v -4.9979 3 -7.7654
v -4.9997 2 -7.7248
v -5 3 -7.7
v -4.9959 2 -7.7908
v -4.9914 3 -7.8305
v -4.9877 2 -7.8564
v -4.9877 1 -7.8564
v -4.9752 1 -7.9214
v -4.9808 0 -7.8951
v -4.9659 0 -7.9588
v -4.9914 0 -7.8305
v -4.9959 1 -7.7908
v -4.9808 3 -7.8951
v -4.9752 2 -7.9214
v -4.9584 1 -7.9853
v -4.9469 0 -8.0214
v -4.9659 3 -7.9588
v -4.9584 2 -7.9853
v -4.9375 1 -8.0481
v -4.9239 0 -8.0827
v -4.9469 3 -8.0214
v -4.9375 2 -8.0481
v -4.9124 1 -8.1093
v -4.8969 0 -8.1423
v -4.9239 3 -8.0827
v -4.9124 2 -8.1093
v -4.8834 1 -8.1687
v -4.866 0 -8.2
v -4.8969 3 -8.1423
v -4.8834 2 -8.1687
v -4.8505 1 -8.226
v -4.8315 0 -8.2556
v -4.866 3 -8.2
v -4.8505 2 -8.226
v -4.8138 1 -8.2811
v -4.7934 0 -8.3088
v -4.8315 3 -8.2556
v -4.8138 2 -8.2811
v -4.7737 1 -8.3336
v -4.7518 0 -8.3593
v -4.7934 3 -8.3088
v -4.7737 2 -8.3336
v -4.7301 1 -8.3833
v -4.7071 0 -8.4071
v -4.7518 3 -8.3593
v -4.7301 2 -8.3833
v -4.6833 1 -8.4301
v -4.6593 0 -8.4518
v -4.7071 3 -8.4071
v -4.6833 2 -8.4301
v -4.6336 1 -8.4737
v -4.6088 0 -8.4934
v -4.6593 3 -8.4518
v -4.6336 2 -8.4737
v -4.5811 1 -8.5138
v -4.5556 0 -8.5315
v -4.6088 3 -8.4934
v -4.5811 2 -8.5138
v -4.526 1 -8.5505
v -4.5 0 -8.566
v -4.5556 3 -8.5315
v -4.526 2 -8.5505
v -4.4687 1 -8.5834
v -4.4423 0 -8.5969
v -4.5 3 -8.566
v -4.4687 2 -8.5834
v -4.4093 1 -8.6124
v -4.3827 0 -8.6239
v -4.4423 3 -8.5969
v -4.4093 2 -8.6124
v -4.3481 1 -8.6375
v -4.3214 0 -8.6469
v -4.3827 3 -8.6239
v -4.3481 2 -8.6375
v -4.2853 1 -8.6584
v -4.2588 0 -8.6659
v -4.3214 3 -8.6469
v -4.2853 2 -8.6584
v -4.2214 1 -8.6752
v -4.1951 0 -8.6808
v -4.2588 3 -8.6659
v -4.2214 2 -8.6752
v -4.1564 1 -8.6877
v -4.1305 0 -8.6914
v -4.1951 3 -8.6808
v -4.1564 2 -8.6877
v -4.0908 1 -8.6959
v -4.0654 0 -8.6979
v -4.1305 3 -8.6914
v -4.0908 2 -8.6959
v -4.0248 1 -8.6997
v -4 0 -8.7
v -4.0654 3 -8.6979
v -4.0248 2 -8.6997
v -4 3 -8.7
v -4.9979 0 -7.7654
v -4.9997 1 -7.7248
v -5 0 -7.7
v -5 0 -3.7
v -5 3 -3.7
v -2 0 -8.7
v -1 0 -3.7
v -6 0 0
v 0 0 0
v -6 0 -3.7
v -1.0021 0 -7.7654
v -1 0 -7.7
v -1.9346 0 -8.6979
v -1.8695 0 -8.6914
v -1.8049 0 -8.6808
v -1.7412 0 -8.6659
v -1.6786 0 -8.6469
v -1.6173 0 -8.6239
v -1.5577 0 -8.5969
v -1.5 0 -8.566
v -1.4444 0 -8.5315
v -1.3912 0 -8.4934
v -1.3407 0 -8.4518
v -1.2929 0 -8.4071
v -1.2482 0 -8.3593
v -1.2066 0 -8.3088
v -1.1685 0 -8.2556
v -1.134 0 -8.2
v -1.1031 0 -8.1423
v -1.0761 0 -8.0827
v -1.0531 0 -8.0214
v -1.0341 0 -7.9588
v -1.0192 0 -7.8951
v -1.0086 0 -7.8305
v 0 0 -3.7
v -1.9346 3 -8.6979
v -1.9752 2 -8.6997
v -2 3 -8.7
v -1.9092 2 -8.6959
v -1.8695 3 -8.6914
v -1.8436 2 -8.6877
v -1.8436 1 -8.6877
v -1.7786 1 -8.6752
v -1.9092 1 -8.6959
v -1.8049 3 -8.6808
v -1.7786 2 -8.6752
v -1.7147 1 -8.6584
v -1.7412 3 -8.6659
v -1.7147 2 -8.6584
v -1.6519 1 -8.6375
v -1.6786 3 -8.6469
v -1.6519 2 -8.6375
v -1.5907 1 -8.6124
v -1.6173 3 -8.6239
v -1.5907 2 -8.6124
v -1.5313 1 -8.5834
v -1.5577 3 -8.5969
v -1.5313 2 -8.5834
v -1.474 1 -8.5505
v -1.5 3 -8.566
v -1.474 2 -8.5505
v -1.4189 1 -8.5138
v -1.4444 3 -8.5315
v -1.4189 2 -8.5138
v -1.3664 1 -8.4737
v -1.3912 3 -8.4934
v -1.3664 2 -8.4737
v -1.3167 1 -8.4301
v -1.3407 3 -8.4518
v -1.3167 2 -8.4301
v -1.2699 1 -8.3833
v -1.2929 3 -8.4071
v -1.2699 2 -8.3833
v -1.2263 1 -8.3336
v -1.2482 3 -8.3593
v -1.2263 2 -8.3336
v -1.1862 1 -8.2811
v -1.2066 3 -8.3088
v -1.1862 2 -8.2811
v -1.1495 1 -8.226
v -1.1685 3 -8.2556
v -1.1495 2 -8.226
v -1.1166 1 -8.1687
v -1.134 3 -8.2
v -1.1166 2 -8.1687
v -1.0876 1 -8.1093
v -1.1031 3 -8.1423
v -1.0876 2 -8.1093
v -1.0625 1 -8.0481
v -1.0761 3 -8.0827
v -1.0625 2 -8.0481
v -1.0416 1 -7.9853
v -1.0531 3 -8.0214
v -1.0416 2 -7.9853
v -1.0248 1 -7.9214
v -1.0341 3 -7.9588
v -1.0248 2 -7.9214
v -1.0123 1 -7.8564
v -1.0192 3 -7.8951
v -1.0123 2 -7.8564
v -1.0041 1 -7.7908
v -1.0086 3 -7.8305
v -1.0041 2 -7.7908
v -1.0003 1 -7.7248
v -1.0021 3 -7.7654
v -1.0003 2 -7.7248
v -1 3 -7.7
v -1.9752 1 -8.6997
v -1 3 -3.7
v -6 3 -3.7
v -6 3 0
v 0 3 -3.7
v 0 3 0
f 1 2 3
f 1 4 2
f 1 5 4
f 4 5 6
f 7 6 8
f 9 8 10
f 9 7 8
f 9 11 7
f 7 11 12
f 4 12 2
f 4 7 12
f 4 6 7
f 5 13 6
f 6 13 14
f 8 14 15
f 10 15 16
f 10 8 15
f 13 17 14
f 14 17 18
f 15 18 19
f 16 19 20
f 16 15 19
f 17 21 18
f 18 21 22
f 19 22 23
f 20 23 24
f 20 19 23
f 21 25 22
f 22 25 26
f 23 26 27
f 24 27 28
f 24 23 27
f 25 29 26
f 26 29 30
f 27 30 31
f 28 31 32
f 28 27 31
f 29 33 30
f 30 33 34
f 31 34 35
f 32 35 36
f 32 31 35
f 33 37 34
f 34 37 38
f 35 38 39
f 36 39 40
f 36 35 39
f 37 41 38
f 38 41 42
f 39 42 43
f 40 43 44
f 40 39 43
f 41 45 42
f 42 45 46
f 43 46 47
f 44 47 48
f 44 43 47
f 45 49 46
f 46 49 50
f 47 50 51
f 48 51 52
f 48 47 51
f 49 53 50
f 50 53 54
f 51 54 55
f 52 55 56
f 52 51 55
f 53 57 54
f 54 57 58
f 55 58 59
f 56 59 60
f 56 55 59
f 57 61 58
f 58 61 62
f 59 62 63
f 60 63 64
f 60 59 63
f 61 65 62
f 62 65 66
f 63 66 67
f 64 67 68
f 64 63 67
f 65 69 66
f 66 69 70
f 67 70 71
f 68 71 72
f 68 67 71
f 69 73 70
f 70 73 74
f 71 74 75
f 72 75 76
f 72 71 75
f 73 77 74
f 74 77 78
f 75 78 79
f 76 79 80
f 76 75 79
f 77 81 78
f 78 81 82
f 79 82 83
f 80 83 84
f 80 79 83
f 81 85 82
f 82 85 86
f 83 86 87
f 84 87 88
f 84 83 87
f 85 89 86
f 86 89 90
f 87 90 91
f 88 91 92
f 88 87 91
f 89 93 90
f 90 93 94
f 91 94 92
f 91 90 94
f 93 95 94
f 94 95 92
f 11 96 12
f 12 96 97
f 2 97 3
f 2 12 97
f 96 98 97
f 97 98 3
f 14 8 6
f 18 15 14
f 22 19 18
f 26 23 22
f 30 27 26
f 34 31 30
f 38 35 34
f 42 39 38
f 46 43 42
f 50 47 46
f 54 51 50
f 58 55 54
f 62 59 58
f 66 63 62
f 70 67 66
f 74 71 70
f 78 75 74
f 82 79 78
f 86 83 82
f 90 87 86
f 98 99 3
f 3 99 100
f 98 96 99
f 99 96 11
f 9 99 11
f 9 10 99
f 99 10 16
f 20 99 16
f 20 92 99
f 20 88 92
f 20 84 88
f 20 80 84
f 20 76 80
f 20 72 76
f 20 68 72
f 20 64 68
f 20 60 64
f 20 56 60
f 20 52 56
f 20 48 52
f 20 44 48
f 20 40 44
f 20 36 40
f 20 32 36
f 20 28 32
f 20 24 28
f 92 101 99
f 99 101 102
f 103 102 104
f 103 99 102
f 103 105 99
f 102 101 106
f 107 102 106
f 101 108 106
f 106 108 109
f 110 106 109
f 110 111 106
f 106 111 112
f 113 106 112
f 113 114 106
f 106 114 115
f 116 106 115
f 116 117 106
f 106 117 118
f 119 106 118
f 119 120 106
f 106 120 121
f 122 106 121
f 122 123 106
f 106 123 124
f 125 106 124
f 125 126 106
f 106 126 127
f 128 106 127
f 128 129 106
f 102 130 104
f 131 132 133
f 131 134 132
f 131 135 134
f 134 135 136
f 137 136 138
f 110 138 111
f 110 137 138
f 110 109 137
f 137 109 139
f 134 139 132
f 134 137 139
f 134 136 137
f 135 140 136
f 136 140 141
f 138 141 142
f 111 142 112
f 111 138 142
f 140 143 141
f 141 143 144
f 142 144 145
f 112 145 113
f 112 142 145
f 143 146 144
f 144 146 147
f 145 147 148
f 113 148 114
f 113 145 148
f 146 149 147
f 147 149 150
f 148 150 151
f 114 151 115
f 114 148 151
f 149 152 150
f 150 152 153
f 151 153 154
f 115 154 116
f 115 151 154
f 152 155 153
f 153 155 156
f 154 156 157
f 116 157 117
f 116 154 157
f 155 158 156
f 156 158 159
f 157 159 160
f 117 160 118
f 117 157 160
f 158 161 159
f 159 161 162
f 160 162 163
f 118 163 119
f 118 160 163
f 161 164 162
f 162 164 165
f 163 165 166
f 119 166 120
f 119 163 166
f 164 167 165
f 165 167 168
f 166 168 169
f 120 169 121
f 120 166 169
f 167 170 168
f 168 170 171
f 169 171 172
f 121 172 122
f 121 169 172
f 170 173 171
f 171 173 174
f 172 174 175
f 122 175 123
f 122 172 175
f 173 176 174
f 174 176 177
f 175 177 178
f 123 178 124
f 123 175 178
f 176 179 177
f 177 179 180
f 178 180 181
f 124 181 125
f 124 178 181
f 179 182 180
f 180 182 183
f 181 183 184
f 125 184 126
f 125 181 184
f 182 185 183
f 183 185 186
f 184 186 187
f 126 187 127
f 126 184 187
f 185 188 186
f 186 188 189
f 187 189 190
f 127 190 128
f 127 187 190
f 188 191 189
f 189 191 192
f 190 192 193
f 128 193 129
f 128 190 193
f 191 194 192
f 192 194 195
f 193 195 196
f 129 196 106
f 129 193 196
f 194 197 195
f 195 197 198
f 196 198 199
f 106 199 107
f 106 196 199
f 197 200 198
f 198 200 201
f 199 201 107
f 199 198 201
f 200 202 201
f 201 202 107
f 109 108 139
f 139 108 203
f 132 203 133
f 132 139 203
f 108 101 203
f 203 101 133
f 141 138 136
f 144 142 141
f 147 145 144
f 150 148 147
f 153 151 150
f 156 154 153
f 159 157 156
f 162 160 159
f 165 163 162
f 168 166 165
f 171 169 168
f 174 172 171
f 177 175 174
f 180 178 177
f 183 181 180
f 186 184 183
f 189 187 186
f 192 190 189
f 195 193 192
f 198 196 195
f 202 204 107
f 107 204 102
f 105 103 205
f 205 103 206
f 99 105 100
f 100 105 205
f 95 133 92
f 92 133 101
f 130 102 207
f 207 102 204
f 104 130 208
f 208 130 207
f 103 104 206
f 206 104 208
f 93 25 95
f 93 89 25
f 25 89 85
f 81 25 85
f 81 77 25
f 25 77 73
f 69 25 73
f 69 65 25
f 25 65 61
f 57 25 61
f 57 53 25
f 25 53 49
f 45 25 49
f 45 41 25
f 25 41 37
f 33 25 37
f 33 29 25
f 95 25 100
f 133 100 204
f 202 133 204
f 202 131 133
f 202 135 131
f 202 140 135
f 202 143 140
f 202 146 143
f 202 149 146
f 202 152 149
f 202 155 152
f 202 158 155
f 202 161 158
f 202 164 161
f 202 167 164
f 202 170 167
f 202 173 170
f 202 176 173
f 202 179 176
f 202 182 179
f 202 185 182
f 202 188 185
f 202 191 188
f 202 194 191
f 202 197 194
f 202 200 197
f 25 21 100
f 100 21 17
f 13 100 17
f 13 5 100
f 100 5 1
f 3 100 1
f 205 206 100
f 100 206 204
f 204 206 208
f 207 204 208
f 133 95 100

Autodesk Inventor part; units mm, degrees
ref_plane "YZ Plane" through (0, 0, 0) normal (1, 0, 0) x (0, 1, 0)
ref_plane "XZ Plane" through (0, 0, 0) normal (0, 1, 0) x (-1, 0, 0)
ref_plane "XY Plane" through (0, 0, 0) normal (0, 0, 1) x (1, 0, 0)
sketch "Sketch1" plane through (0, 0, 0) normal (0, 1, 0) x (-1, 0, 0)
  line L0 (0, 0) -> (6, 0)
  line L1 (6, 0) -> (6, -3.7)
  line L2 (6, -3.7) -> (5, -3.7)
  line L3 (5, -3.7) -> (5, -8.7)
  line L4 (5, -8.7) -> (1, -8.7)
  line L5 (1, -8.7) -> (1, -3.7)
  line L6 (1, -3.7) -> (0, -3.7)
  line L7 (0, -3.7) -> (0, 0)
  dimension "d0" = 6
  dimension "d1" = 3.7
  dimension "d2" = 1
  dimension "d3" = 5
  dimension "d4" = 4
  dimension "d5" = 5
  dimension "d6" = 1
extrude "Extrusion1" add sketch "Sketch1" along normal blind 3
fillet "Fillet1" radius 1 2 edges at (-1, 1.5, -8.7) (-5, 1.5, -8.7)
properties part number "BBGW Case Button" material "Acrylic, Clear"
